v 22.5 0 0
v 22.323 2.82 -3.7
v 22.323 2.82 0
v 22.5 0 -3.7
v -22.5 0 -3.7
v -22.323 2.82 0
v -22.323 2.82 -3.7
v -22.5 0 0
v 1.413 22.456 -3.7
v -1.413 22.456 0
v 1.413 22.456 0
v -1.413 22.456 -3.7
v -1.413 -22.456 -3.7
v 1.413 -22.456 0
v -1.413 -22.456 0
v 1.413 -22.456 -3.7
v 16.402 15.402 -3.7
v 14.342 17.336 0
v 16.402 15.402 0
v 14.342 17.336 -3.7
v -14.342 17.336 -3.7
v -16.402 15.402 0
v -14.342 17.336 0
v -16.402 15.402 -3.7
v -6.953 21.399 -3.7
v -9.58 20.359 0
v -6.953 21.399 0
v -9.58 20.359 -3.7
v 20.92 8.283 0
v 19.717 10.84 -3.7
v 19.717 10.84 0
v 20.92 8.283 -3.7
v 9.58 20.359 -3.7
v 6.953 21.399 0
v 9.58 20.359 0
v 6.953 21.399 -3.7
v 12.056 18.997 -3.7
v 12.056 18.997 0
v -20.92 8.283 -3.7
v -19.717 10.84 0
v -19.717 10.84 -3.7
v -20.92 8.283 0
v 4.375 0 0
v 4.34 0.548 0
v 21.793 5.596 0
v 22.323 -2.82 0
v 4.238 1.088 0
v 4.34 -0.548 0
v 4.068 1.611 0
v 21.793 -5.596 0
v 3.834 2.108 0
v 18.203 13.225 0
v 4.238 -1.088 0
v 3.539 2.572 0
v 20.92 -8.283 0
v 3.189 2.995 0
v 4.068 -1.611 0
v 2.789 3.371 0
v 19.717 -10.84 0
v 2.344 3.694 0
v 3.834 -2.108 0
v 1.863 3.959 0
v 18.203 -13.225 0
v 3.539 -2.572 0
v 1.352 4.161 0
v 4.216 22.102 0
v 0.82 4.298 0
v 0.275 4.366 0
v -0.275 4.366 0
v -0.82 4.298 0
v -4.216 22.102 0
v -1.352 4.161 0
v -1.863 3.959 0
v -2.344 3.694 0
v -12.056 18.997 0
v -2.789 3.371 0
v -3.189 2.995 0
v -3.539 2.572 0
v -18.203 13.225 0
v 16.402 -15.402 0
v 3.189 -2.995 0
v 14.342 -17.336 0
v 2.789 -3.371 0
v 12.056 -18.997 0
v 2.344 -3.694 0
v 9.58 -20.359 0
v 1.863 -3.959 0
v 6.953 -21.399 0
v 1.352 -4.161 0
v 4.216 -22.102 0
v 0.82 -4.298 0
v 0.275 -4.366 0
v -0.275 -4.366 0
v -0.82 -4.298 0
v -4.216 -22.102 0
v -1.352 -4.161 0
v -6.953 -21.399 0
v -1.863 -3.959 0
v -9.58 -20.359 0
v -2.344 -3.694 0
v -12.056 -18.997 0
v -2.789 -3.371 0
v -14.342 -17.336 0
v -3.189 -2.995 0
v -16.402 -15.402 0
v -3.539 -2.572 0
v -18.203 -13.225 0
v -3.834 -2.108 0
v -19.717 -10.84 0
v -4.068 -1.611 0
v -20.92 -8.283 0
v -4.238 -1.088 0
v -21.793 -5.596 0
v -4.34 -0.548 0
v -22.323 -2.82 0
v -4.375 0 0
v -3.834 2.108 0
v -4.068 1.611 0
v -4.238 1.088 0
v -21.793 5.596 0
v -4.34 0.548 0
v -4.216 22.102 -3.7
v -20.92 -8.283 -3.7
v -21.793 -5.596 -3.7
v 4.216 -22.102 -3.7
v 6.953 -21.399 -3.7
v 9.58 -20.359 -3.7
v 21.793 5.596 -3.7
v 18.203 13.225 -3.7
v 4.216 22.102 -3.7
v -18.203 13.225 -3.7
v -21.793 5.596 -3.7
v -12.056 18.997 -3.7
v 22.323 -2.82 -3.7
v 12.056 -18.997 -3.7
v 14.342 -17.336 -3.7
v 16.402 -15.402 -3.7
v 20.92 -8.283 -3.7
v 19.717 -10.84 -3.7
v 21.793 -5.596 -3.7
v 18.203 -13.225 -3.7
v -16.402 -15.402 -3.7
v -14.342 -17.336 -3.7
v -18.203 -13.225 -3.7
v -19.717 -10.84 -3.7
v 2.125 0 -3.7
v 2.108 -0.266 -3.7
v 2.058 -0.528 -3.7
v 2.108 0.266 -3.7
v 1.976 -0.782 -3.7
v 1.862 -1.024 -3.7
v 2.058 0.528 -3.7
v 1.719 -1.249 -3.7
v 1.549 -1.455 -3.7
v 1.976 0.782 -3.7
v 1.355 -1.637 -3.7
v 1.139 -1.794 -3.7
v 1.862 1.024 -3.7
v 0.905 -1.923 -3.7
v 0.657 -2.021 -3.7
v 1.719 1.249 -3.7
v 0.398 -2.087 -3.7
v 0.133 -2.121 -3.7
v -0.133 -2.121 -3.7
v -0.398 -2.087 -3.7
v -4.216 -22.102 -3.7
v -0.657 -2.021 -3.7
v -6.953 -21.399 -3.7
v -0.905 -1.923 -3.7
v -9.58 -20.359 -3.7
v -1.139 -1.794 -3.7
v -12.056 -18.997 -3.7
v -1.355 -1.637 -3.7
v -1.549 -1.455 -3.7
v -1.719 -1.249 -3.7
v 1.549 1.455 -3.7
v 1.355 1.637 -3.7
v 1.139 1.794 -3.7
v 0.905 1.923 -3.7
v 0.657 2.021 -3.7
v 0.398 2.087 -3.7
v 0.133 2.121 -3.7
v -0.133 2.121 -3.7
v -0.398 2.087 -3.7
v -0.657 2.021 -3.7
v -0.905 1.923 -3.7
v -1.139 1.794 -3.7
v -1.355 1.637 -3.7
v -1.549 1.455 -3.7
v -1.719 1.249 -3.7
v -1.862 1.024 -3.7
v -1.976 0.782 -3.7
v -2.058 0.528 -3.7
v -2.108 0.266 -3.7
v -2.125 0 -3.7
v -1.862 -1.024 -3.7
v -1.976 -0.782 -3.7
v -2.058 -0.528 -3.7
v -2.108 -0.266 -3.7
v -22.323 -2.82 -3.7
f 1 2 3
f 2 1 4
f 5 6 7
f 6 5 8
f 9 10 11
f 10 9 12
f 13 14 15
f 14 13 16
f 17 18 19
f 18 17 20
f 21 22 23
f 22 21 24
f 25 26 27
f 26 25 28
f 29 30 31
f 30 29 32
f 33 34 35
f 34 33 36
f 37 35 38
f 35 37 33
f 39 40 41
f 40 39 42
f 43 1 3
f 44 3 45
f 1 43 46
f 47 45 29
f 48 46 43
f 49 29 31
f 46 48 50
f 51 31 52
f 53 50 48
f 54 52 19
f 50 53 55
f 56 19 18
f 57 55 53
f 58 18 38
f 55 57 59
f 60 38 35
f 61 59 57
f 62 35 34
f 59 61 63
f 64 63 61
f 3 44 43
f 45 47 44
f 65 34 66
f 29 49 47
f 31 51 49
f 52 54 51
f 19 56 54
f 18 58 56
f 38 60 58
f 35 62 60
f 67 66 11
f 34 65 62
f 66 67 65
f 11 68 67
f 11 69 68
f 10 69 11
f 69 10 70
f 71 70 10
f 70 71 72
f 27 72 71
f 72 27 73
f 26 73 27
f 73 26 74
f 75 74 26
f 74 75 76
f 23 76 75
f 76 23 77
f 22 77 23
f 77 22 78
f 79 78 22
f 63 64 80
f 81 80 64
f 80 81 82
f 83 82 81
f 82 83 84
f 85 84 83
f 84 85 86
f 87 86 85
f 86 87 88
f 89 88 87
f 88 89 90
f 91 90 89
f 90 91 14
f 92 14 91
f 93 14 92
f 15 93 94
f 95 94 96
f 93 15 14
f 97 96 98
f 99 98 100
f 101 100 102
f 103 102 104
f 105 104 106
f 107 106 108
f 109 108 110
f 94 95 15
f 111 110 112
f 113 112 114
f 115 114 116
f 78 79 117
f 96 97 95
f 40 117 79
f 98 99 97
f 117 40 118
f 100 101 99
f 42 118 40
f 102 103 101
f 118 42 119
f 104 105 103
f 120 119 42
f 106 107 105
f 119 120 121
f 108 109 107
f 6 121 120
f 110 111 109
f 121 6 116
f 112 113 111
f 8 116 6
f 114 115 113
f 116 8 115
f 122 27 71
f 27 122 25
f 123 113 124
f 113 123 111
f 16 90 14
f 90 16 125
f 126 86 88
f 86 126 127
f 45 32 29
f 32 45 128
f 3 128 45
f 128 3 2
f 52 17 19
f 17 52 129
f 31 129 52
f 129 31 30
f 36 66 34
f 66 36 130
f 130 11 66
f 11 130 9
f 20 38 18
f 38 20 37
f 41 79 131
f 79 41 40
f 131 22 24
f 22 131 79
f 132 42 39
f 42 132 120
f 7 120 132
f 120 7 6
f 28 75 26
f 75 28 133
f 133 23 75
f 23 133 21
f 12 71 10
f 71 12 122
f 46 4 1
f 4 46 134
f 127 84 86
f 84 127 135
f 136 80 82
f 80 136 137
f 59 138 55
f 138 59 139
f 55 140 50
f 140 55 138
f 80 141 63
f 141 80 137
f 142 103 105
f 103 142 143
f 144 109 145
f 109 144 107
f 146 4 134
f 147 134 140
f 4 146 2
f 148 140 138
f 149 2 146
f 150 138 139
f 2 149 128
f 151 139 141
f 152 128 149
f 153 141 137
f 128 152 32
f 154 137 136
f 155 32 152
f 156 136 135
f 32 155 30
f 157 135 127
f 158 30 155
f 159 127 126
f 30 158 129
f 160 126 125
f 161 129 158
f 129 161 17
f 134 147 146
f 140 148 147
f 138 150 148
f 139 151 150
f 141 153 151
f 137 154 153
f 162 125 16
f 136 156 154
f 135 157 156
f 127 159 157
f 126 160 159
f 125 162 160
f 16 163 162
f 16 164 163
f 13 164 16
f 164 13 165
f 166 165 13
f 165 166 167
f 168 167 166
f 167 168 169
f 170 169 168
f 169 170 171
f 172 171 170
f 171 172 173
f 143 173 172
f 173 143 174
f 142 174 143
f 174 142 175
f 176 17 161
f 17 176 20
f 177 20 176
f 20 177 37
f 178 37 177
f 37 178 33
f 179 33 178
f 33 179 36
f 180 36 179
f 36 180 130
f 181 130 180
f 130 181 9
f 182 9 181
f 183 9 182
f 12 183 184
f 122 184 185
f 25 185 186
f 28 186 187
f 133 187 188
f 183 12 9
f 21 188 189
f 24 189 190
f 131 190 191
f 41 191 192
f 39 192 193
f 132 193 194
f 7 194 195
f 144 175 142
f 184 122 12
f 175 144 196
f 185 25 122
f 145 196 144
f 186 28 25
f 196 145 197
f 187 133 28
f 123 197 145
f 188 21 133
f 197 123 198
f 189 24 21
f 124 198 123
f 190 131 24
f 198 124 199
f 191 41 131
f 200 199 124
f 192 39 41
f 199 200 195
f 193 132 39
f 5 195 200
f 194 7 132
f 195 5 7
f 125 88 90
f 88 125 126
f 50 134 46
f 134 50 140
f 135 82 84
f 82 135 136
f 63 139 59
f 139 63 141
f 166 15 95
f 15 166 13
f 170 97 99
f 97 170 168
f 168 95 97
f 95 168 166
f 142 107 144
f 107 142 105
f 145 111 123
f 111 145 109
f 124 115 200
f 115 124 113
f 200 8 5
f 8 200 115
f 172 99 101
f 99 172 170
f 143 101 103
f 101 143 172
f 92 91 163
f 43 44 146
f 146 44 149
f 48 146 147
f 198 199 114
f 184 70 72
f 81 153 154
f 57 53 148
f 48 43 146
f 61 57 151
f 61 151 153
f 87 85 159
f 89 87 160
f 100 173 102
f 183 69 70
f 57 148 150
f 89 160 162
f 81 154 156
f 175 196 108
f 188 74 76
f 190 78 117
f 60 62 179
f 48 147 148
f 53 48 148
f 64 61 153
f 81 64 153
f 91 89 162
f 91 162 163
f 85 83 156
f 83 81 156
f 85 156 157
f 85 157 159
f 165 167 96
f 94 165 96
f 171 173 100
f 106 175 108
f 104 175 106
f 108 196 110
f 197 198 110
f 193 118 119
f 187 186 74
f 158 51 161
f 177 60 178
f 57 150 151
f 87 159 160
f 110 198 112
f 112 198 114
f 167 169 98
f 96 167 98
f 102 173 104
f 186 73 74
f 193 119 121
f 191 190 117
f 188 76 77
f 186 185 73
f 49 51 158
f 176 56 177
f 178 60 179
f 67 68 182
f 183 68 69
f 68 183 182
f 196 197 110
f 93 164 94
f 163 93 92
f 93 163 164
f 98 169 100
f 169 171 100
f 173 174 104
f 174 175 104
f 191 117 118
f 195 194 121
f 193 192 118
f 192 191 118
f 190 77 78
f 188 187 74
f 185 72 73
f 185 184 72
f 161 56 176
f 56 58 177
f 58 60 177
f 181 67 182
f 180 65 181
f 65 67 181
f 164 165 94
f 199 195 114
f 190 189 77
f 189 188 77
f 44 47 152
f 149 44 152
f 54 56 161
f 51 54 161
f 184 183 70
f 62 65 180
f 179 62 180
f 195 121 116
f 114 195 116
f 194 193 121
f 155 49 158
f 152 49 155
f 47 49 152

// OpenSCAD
$fn = 50;


difference() {
	union() {
		translate(v = [0, 0, -3.7000000000]) {
			cylinder(h = 3.7000000000, r = 22.5000000000);
		}
		translate(v = [0, 0, -3.7000000000]) {
			cylinder(h = 3.7000000000, r = 2.8750000000);
		}
	}
	union() {
		translate(v = [0, 0, 0]) {
			rotate(a = [0, 0, 0]) {
				difference() {
					union() {
						#translate(v = [0, 0, -3.7000000000]) {
							cylinder(h = 3.7000000000, r = 2.0000000000);
						}
						#translate(v = [0, 0, -3.7000000000]) {
							cylinder(h = 3.7000000000, r1 = 2.1250000000, r2 = 4.3750000000);
						}
						#translate(v = [0, 0, -3.7000000000]) {
							cylinder(h = 3.7000000000, r = 2.1250000000);
						}
						#translate(v = [0, 0, -3.7000000000]) {
							cylinder(h = 3.7000000000, r = 2.0000000000);
						}
					}
					union();
				}
			}
		}
	}
}
